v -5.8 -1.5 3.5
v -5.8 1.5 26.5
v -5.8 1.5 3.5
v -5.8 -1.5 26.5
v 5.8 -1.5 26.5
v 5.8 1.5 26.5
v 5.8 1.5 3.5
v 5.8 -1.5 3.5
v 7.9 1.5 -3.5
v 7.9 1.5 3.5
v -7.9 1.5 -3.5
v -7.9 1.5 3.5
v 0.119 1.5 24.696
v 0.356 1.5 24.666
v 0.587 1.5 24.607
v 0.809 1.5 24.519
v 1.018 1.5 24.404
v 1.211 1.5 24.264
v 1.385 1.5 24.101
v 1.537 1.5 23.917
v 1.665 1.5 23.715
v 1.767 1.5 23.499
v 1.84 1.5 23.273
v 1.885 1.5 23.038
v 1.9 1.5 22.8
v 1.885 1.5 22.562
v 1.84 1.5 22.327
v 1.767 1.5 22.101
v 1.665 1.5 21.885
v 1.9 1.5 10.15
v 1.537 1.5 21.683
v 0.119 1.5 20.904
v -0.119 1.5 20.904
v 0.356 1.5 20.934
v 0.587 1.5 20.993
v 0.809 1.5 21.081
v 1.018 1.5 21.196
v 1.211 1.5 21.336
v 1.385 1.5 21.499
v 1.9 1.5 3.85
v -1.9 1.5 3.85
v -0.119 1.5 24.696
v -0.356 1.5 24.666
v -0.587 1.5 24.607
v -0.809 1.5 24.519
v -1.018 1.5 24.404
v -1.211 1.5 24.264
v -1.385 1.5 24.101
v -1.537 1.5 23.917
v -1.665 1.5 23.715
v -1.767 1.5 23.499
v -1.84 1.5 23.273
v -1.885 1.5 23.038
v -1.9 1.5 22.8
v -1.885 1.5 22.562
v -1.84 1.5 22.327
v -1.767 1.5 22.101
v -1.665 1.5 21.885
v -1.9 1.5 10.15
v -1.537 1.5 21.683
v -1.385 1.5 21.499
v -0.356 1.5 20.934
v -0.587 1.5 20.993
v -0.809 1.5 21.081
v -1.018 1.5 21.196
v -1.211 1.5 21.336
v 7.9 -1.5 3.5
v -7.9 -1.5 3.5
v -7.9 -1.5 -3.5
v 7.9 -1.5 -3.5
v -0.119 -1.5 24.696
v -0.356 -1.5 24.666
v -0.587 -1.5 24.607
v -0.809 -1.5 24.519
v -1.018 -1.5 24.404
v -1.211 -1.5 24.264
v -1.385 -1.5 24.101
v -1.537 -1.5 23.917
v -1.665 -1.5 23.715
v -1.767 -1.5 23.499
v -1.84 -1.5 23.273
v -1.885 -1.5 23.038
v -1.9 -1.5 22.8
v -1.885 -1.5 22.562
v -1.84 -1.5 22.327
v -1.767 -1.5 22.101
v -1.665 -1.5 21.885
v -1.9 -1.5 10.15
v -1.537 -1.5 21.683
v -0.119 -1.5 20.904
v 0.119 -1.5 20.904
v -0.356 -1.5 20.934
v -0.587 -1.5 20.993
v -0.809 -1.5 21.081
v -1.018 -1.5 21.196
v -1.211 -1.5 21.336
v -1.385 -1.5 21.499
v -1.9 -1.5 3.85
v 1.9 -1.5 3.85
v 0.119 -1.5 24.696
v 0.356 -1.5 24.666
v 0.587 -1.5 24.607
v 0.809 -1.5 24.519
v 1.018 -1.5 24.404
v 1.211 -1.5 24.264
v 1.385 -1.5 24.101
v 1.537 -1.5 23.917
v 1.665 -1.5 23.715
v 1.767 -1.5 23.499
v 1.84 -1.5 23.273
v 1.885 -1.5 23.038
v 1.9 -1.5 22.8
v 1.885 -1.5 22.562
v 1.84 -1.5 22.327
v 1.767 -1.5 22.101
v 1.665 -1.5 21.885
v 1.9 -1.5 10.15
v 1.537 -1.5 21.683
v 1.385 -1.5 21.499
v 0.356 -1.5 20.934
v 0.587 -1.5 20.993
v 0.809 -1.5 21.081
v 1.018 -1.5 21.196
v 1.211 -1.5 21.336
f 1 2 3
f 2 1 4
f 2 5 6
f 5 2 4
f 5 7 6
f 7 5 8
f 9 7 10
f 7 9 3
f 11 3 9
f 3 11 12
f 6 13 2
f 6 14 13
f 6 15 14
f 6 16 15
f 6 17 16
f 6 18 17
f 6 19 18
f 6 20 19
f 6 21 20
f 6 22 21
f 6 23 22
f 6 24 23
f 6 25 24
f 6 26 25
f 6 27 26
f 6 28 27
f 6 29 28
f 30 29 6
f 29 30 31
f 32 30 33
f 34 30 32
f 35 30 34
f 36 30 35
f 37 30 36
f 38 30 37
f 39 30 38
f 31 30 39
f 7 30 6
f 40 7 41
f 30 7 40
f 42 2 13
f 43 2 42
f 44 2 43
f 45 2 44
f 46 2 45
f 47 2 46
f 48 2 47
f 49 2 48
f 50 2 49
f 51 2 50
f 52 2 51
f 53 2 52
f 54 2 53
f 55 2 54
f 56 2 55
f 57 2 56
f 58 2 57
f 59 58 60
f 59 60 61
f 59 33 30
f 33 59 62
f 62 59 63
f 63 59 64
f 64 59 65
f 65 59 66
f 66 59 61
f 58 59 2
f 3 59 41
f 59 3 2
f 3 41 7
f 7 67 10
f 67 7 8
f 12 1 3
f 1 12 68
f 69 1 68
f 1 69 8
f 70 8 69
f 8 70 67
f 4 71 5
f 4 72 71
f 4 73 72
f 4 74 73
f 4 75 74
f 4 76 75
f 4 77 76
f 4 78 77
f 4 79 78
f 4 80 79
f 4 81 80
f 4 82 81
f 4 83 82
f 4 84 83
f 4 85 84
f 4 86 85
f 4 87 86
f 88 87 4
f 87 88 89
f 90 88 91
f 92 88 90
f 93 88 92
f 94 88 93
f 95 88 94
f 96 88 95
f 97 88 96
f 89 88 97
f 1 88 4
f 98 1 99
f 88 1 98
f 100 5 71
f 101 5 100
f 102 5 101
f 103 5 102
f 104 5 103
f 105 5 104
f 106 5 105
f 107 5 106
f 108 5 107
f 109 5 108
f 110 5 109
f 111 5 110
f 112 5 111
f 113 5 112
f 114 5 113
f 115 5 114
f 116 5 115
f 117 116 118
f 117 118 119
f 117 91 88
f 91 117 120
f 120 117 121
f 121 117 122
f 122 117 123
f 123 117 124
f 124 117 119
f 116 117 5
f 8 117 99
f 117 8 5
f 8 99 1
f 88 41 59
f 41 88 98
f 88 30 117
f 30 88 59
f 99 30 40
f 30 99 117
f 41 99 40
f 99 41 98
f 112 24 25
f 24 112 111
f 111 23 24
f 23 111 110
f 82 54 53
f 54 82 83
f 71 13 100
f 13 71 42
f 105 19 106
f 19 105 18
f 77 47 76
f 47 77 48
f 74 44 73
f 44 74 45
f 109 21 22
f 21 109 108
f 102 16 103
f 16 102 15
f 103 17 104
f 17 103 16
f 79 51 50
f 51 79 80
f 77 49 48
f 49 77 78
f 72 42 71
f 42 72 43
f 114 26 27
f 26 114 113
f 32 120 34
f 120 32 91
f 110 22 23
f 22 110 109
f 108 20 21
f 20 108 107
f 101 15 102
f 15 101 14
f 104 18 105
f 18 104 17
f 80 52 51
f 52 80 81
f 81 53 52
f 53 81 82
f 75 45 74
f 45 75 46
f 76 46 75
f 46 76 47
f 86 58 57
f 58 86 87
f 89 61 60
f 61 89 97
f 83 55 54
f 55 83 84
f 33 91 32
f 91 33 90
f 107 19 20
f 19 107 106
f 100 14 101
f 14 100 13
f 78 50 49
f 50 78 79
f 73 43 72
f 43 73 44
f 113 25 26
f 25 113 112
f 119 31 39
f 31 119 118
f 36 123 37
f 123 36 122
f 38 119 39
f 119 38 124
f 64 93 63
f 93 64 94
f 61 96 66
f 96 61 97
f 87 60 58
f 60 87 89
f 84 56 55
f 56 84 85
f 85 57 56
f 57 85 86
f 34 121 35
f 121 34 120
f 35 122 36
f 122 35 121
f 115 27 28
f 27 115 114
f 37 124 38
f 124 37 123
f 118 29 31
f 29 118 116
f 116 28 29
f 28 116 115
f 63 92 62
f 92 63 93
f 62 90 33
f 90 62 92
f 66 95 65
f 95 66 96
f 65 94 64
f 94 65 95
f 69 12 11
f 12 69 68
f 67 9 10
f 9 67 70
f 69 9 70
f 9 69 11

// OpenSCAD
$fn = 50;
larg_base = 15.8;
alt_base = 7;
prof_base= 3;

larg_braco = 11.6;
alt_braco = 23;
prof_braco= 3;

alt_buraco_meio = 6.3;
larg_buraco_meio = 3.8;

module base(){
cube([larg_base,prof_base,alt_base], center = true);

}

module buraco_meio(){
translate([0, 0, alt_base])
    cube([larg_buraco_meio,4,alt_buraco_meio], center=true);
}

module buraco_topo(){
translate([0,0,3.8+19])    
    rotate([90,0,0])
        cylinder(5,r=3.8/2,center=true);
}
module braco(){
difference(){
    difference(){
    translate([0,0,(alt_braco/2)+(alt_base/2)])
        cube([larg_braco,prof_braco,alt_braco], center = true);
          buraco_meio();
 }
 buraco_topo();
 } 
}



//buraco_topo();
base();
braco();
